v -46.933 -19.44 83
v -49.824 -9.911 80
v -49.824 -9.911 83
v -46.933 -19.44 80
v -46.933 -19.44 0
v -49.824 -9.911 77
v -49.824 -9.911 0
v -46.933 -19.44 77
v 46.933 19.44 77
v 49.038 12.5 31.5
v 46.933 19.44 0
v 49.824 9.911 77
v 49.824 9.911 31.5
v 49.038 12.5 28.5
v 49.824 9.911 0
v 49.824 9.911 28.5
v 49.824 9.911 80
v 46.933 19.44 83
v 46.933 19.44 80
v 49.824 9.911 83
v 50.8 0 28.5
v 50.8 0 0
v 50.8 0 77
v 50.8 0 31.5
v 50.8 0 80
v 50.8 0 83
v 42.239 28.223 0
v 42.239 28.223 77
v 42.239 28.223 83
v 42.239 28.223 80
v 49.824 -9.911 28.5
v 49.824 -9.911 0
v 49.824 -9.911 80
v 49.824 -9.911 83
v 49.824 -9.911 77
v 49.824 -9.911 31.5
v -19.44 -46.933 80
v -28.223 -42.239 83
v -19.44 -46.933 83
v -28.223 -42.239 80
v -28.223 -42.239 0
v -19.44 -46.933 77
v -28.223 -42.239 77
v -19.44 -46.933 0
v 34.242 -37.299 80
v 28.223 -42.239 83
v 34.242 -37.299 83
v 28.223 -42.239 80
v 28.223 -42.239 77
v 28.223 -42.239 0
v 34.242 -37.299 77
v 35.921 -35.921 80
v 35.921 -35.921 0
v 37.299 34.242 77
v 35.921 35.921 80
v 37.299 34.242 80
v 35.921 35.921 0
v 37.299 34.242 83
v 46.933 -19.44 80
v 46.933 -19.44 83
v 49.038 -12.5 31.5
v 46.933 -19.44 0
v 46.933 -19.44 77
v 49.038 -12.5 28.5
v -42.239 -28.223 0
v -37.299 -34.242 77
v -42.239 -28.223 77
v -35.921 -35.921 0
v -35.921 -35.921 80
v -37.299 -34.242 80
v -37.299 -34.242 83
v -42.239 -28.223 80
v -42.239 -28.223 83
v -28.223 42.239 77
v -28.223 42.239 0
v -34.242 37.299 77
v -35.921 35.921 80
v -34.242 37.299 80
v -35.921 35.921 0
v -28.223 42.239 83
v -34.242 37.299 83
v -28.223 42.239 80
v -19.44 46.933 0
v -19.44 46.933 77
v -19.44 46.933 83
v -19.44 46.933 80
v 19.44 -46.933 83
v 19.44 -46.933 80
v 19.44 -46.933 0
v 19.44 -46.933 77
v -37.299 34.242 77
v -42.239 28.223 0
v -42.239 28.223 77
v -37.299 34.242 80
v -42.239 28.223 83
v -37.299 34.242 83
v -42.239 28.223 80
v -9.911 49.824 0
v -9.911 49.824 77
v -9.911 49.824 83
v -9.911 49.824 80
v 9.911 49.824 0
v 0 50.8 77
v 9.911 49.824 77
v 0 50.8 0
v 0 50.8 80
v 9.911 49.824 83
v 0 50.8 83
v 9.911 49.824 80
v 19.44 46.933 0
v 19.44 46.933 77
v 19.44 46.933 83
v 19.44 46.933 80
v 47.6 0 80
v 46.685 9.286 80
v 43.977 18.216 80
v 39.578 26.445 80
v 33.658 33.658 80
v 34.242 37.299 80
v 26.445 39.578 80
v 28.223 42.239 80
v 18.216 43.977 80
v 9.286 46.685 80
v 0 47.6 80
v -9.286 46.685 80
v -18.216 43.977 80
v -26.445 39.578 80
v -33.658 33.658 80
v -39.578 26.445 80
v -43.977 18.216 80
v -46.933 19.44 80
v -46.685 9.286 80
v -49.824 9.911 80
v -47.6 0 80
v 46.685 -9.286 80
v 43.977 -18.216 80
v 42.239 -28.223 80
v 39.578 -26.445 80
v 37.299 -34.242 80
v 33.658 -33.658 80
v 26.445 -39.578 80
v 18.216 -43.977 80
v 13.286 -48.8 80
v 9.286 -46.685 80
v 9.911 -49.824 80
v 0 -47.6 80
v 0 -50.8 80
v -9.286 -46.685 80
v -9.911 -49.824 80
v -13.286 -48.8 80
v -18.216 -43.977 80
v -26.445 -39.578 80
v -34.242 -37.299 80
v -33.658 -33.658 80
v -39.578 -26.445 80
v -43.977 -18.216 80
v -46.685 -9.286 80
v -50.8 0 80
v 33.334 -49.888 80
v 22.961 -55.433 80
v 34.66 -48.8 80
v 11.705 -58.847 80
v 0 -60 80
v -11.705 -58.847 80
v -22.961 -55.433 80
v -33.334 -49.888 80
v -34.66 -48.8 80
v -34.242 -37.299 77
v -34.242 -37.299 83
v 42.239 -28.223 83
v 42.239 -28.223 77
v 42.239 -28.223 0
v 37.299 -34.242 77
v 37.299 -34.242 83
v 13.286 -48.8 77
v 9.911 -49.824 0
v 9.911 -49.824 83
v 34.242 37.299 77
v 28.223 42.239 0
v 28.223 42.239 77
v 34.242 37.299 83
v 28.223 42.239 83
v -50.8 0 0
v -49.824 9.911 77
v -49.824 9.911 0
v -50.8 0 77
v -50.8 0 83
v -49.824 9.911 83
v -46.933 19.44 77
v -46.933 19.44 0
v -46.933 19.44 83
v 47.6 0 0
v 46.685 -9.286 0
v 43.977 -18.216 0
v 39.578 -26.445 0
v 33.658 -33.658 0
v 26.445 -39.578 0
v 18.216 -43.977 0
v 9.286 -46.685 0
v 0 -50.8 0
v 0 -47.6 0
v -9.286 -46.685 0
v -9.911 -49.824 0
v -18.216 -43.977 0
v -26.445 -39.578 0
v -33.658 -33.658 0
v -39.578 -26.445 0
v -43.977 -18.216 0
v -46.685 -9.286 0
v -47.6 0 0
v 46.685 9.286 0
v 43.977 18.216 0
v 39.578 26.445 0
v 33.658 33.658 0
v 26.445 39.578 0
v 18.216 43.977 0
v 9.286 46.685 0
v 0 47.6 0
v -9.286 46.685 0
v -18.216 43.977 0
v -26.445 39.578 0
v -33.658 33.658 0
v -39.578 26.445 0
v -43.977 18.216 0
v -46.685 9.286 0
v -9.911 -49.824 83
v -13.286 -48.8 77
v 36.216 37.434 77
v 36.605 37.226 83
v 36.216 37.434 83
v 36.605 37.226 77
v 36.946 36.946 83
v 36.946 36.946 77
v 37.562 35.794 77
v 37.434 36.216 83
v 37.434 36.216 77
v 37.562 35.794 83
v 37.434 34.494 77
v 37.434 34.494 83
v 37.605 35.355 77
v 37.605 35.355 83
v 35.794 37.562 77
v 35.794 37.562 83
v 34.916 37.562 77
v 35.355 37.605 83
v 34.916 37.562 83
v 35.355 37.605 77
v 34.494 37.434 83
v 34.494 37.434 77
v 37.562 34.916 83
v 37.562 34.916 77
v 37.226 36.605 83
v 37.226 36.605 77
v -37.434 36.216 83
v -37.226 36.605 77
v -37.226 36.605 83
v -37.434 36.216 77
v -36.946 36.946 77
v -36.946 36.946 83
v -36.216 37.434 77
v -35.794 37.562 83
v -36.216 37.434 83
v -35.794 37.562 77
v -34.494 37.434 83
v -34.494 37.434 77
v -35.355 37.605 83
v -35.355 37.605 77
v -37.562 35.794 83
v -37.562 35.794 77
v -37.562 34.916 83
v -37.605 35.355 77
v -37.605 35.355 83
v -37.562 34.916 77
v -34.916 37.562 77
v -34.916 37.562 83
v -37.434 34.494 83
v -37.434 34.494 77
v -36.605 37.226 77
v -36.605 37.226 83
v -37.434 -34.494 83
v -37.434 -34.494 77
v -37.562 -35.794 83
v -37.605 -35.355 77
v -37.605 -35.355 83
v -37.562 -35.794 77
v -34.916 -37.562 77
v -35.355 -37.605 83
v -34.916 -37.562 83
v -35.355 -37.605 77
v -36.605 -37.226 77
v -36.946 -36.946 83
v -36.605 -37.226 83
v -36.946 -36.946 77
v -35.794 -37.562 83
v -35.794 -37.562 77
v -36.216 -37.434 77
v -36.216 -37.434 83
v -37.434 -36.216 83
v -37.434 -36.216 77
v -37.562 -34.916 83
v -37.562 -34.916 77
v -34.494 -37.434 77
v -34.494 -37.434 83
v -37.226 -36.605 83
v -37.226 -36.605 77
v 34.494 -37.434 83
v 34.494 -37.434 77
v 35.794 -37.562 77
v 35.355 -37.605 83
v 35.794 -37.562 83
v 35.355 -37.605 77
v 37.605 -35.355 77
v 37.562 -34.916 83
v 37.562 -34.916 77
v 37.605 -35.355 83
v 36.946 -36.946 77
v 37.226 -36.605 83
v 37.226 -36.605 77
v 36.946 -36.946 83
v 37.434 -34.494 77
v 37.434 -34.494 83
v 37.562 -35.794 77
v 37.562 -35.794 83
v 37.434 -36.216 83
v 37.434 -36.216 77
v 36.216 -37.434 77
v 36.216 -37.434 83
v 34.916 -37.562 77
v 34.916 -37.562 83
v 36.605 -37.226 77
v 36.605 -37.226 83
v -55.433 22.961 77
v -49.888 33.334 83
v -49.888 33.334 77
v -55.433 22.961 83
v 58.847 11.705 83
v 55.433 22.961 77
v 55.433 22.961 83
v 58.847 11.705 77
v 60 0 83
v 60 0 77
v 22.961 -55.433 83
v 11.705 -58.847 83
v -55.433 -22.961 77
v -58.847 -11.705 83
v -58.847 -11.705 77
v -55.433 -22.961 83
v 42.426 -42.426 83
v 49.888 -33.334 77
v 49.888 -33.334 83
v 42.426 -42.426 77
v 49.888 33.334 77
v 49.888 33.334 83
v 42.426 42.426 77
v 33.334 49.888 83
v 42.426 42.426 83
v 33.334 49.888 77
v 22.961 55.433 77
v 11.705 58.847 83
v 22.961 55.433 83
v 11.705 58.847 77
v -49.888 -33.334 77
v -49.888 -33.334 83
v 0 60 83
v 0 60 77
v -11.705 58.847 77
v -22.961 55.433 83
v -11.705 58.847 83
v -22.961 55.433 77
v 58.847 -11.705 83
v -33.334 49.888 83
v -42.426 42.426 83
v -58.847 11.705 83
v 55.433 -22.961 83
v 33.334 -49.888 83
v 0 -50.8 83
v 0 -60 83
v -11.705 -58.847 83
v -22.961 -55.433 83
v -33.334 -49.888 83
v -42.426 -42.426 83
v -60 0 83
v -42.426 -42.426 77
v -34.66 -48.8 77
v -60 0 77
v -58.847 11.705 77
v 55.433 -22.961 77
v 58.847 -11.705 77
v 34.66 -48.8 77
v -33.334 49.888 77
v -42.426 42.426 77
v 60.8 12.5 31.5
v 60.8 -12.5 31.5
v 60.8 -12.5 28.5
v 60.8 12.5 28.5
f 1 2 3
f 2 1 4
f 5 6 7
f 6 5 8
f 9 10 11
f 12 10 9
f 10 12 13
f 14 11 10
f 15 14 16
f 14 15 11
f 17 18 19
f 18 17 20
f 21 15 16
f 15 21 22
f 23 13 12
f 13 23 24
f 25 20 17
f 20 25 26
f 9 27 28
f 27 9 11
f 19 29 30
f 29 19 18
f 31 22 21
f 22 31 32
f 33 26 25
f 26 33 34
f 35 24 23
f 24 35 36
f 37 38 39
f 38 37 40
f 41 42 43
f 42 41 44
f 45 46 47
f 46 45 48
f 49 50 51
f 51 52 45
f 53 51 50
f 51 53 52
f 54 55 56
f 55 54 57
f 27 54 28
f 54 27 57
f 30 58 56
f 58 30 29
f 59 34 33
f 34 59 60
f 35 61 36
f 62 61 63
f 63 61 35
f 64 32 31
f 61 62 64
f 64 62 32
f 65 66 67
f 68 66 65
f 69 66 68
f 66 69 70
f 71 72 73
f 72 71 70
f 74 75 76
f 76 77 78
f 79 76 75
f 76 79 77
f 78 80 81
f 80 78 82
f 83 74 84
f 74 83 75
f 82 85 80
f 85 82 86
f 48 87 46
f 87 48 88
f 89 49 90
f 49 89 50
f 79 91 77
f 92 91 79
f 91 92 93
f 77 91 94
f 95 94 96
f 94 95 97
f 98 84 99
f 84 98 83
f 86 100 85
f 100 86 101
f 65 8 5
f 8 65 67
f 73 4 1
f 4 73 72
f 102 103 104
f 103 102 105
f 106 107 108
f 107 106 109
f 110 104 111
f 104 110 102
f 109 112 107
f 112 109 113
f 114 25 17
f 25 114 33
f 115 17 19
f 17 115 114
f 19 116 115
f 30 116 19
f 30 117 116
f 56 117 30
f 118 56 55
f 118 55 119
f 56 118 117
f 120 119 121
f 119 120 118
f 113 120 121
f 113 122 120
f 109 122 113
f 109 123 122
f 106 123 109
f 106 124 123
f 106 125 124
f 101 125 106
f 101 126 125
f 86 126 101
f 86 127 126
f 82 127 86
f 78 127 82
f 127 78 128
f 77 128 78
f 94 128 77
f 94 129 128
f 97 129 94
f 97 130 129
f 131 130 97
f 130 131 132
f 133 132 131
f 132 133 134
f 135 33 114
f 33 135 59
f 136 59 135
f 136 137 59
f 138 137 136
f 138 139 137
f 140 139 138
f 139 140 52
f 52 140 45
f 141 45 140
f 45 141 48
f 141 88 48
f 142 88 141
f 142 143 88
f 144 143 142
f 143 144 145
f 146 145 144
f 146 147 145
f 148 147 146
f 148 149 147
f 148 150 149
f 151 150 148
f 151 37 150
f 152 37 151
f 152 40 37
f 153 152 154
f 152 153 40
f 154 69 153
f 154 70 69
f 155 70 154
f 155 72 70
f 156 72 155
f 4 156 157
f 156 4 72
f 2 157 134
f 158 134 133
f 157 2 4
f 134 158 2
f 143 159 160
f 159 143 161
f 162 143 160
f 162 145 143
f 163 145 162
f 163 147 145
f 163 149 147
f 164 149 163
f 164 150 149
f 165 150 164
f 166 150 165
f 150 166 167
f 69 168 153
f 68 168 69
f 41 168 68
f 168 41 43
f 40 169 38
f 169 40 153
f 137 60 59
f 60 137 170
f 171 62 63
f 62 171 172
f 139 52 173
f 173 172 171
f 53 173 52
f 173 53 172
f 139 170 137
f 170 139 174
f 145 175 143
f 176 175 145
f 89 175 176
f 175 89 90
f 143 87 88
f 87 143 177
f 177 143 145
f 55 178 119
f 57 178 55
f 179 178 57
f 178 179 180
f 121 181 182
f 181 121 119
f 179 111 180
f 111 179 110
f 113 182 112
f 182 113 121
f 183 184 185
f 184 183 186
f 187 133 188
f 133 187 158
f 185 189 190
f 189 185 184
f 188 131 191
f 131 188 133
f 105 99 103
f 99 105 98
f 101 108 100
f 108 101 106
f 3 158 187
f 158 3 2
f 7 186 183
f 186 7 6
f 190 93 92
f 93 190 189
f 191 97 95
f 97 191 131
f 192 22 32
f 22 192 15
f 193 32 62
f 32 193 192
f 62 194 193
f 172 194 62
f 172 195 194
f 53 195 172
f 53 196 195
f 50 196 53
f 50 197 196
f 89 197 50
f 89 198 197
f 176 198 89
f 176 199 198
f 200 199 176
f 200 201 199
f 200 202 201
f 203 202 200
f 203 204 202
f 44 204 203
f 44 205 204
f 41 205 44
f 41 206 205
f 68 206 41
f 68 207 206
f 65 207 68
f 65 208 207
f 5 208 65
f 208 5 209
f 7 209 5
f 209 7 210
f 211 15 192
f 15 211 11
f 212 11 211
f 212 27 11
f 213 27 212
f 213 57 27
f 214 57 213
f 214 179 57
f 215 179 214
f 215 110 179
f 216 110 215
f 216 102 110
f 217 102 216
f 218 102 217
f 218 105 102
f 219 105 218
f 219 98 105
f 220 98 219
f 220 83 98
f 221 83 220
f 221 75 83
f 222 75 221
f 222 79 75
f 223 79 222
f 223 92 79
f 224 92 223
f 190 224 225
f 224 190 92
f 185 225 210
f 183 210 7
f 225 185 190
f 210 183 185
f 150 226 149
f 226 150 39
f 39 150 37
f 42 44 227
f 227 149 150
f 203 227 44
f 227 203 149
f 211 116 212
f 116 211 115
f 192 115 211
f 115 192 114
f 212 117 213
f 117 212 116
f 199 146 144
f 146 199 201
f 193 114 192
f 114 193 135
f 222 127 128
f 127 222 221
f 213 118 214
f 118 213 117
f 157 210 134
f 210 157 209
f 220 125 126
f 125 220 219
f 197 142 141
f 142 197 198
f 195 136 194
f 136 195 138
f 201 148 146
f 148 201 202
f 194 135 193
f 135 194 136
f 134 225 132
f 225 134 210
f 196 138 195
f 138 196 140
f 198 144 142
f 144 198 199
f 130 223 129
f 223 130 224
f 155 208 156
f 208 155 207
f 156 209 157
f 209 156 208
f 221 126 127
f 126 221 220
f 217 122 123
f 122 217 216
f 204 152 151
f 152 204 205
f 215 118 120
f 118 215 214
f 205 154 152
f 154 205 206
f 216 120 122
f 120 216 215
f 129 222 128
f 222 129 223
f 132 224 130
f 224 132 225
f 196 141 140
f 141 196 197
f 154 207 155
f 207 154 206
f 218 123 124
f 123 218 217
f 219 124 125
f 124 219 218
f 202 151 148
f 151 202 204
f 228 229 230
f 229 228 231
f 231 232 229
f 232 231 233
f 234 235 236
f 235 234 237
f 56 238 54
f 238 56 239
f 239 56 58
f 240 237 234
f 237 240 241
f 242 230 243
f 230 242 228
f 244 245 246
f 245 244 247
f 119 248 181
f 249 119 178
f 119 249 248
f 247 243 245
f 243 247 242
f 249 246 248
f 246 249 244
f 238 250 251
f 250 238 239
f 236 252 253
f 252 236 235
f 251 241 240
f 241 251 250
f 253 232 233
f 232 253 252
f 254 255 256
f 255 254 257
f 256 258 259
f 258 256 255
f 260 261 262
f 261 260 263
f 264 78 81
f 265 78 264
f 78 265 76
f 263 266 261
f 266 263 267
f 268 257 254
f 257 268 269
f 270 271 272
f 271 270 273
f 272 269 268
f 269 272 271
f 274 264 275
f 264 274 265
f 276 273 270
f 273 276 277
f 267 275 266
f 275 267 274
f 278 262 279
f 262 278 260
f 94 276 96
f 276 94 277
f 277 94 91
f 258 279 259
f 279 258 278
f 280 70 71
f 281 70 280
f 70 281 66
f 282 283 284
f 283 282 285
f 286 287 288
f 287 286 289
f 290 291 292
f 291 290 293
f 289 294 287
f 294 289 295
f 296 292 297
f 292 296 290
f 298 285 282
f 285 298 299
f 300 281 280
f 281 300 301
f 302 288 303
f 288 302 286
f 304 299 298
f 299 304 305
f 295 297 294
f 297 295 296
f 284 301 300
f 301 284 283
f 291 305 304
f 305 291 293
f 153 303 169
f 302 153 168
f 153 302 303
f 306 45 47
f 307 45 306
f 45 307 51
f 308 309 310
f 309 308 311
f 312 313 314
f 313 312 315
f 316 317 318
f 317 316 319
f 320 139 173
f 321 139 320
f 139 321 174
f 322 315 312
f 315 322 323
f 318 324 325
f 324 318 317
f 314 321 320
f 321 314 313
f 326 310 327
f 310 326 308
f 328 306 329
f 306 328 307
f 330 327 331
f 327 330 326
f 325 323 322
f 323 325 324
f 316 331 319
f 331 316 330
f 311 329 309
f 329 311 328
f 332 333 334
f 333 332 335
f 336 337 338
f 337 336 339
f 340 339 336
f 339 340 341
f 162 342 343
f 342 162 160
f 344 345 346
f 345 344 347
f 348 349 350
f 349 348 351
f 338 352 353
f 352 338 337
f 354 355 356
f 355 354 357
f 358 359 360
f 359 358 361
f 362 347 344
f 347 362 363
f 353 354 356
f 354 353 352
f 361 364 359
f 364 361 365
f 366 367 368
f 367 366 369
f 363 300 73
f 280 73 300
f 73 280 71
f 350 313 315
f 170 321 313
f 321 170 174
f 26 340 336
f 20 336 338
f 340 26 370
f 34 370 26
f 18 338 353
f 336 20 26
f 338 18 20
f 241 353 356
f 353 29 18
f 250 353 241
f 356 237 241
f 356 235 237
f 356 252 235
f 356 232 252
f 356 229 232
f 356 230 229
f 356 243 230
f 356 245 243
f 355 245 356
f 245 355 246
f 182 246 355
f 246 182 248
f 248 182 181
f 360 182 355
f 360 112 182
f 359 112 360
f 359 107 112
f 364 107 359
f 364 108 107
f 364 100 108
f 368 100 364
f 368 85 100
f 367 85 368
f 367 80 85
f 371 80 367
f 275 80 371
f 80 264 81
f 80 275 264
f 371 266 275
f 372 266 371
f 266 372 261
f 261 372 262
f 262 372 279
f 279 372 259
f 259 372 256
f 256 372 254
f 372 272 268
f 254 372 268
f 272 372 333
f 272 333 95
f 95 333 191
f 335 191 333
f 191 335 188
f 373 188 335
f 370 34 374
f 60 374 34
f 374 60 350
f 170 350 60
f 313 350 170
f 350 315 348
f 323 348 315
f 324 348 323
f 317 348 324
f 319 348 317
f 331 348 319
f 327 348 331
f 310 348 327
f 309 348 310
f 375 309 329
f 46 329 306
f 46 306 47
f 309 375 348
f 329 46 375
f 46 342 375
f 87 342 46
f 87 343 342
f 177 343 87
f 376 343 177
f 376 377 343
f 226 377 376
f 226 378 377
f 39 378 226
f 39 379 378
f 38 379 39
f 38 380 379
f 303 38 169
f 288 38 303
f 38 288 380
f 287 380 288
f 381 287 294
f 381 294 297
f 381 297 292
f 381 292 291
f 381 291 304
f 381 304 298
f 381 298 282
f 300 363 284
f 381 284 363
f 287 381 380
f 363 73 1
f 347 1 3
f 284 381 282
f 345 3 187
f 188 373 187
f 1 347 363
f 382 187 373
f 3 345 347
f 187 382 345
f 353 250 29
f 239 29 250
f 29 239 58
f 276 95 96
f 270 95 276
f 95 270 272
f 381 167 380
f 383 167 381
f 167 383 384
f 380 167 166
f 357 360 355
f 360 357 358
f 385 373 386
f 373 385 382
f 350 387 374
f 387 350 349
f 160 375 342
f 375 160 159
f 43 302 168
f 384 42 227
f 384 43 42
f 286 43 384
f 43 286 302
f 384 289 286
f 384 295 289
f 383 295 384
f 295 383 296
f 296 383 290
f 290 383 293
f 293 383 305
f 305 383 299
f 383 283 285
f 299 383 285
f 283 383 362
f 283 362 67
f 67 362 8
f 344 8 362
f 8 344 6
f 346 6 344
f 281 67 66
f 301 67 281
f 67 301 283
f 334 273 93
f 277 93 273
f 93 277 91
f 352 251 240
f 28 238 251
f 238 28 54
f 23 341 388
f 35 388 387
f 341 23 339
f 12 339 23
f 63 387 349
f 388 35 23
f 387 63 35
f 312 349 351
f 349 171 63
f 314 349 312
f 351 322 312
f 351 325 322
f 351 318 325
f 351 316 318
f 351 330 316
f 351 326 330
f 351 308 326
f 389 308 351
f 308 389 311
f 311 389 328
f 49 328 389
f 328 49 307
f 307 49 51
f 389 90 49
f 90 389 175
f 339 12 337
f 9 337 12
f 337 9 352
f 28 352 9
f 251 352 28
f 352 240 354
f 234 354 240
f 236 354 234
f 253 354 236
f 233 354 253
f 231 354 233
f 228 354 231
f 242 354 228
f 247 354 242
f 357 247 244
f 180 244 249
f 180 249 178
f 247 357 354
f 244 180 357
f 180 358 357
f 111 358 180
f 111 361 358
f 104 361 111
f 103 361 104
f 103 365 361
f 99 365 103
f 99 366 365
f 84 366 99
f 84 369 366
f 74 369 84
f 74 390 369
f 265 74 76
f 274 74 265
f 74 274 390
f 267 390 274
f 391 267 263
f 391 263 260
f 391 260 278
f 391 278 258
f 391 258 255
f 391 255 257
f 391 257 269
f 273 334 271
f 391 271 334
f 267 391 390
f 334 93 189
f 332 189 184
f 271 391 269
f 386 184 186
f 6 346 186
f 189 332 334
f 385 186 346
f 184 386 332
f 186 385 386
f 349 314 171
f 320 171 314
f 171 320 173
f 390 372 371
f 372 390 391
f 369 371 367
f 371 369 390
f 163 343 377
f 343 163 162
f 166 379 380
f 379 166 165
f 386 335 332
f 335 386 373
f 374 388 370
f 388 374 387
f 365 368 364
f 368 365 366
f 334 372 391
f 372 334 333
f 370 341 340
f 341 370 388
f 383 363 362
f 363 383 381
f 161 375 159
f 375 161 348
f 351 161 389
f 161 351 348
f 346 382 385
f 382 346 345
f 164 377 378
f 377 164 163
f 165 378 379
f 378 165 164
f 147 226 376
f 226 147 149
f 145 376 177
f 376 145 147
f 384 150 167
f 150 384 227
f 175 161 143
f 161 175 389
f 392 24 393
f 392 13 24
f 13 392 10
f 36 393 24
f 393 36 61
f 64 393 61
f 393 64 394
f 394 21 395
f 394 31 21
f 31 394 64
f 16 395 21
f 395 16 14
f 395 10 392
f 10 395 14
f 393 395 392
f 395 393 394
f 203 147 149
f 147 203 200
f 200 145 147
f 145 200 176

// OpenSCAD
// file: trap_modules.scad
// ShopVac Rat Trap - Shared Modules
// Updated with actual component dimensions from BOM

// Global resolution
$fn = 32;

// === Tube Parameters ===
tube_outer_diameter = 101.6;  // 4 inches in mm (standard PVC size)
tube_wall_thickness = 3.2;    // Standard wall thickness
tube_inner_diameter = tube_outer_diameter - (2 * tube_wall_thickness);

// === Flange Parameters ===
flange_diameter = 120;         // Outer flange diameter
flange_thickness = 6;          // Flange thickness
flange_screw_hole_diameter = 4.5;  // M4 clearance holes
flange_screw_hole_inset = 10;  // Distance from flange edge

// === Center Joint - Alignment Pins ===
alignment_pin_diameter = 6;    // 6mm diameter pins
alignment_pin_length = 8;      // 8mm insertion depth
alignment_pin_radius = tube_outer_diameter/2 - 25;  // Position on flange
alignment_pin_clearance = 0.3; // Extra clearance for holes

// === Center Joint - O-Ring Seal ===
oring_groove_width = 3;        // Width of groove (for 2.5mm O-ring)
oring_groove_depth = 1.5;      // Depth of groove

// === STEMMA QT Sensor Mounts (Adafruit Standard) ===
// Standard STEMMA QT board: 17.78mm × 25.4mm (0.7" × 1.0")
stemma_qt_board_width = 17.78;   // Standard width
stemma_qt_board_length = 25.4;   // Standard length
stemma_qt_hole_diameter = 2.7;   // M2.5 clearance holes
stemma_qt_hole_spacing_w = 12.7; // Hole spacing width (0.5")
stemma_qt_hole_spacing_l = 20.3; // Hole spacing length (~0.8")
stemma_qt_mount_thickness = 3;   // Mount base thickness
stemma_qt_standoff_height = 5;   // PCB standoff height

// === PIR Sensor Mount (Adafruit 4871) ===
// Larger board: 32mm × 24mm
pir_board_width = 24;
pir_board_length = 32;
pir_hole_diameter = 3.2;      // M3 clearance
pir_hole_spacing = 28;        // Between mounting holes
pir_dome_diameter = 12;       // PIR dome clearance
pir_dome_height = 8;          // Dome projection

// ========== MODULES ==========

module flange(outer_diameter, thickness, screw_hole_diameter, screw_hole_inset) {
    difference() {
        cylinder(d = outer_diameter, h = thickness, center = true);
        cylinder(d = tube_outer_diameter, h = thickness + 1, center = true);

        // Screw holes
        for (a = [45, 135, 225, 315]) {
            rotate([0, 0, a]) {
                translate([outer_diameter/2 - screw_hole_inset, 0, 0]) {
                    cylinder(d = screw_hole_diameter, h = thickness + 1, center = true);
                }
            }
        }
    }
}

module tube(length, outer_diameter, wall_thickness) {
     difference() {
        cylinder(d=outer_diameter, h=length, center=true);
        cylinder(d=outer_diameter - (2*wall_thickness), h=length+1, center=true);
    }
}
// main file
// ShopVac Rat Trap - Trap Entrance
//
// Description:
// Entrance module with integrated sensor mounts and flanged connection.
// =========================================

include <trap_modules.scad>

// ========== CORE PARAMETERS ==========

// [Dimensions]
entrance_length = 80;
flat_base_height = 20;

// [Sensor Mounts]
apds_mount_pos_z = 30;
vl53_mount_pos_z = 60;
sensor_mount_width = 25;
sensor_mount_height = 20;
sensor_mount_thickness = 3;

// ========== MODULES ==========

module trap_entrance() {
    difference() {
        union() {
            // Main tube body
            translate([0,0,entrance_length/2]) {
                tube(entrance_length, tube_outer_diameter, tube_wall_thickness);
            }

            // Flange at the connection end
            translate([0, 0, entrance_length]) {
                flange(flange_diameter, flange_thickness, flange_screw_hole_diameter, flange_screw_hole_inset);
            }

            // Flat base for stability - Centered and aligned
            translate([0, -tube_outer_diameter/2 - flat_base_height/2 + 2, entrance_length/2]) {
                 cube([tube_outer_diameter, flat_base_height, entrance_length], center=true);
            }

            // Sensor mounts (APDS9960 & VL53L0X) - Connected with hull() for printability

            // Top mount for VL53L0X (distance sensor)
            hull() {
                translate([0, 0, vl53_mount_pos_z]) {
                    rotate([90,0,0]) {
                        translate([0,0,tube_outer_diameter/2]) {
                             cube([sensor_mount_width, sensor_mount_thickness, sensor_mount_height], center=true);
                        }
                    }
                }
                // Anchor to tube
                translate([0, 0, vl53_mount_pos_z]) {
                     rotate([90,0,0]) {
                        translate([0,0,tube_outer_diameter/2 - 2]) {
                             cube([sensor_mount_width, 1, sensor_mount_height], center=true);
                        }
                    }
                }
            }

            // Side mount for APDS9960 (proximity/color sensor)
            hull() {
                translate([0, 0, apds_mount_pos_z]) {
                    rotate([0,90,0]) {
                         translate([0,0,tube_outer_diameter/2]) {
                            cube([sensor_mount_thickness, sensor_mount_width, sensor_mount_height], center=true);
                        }
                    }
                }
                // Anchor to tube
                translate([0, 0, apds_mount_pos_z]) {
                    rotate([0,90,0]) {
                         translate([0,0,tube_outer_diameter/2 - 2]) {
                            cube([1, sensor_mount_width, sensor_mount_height], center=true);
                        }
                    }
                }
            }
        }

        // Cut away top of base to match tube profile (and clear the inside)
        translate([0,0,-1]) {
            cylinder(d=tube_outer_diameter - (2*tube_wall_thickness), h=entrance_length+2);
        }

        // Cut away the base material that intersects with the tube interior
        difference() {
             translate([0, -tube_outer_diameter/2 - flat_base_height/2 + 2, entrance_length/2]) {
                 cube([tube_outer_diameter, flat_base_height, entrance_length], center=true);
            }
            // Keep the base only outside the tube
             translate([0,0,-1]) {
                cylinder(d=tube_outer_diameter, h=entrance_length+2);
            }
        }
    }
}

// ========== ASSEMBLY CALL ==========
trap_entrance();
